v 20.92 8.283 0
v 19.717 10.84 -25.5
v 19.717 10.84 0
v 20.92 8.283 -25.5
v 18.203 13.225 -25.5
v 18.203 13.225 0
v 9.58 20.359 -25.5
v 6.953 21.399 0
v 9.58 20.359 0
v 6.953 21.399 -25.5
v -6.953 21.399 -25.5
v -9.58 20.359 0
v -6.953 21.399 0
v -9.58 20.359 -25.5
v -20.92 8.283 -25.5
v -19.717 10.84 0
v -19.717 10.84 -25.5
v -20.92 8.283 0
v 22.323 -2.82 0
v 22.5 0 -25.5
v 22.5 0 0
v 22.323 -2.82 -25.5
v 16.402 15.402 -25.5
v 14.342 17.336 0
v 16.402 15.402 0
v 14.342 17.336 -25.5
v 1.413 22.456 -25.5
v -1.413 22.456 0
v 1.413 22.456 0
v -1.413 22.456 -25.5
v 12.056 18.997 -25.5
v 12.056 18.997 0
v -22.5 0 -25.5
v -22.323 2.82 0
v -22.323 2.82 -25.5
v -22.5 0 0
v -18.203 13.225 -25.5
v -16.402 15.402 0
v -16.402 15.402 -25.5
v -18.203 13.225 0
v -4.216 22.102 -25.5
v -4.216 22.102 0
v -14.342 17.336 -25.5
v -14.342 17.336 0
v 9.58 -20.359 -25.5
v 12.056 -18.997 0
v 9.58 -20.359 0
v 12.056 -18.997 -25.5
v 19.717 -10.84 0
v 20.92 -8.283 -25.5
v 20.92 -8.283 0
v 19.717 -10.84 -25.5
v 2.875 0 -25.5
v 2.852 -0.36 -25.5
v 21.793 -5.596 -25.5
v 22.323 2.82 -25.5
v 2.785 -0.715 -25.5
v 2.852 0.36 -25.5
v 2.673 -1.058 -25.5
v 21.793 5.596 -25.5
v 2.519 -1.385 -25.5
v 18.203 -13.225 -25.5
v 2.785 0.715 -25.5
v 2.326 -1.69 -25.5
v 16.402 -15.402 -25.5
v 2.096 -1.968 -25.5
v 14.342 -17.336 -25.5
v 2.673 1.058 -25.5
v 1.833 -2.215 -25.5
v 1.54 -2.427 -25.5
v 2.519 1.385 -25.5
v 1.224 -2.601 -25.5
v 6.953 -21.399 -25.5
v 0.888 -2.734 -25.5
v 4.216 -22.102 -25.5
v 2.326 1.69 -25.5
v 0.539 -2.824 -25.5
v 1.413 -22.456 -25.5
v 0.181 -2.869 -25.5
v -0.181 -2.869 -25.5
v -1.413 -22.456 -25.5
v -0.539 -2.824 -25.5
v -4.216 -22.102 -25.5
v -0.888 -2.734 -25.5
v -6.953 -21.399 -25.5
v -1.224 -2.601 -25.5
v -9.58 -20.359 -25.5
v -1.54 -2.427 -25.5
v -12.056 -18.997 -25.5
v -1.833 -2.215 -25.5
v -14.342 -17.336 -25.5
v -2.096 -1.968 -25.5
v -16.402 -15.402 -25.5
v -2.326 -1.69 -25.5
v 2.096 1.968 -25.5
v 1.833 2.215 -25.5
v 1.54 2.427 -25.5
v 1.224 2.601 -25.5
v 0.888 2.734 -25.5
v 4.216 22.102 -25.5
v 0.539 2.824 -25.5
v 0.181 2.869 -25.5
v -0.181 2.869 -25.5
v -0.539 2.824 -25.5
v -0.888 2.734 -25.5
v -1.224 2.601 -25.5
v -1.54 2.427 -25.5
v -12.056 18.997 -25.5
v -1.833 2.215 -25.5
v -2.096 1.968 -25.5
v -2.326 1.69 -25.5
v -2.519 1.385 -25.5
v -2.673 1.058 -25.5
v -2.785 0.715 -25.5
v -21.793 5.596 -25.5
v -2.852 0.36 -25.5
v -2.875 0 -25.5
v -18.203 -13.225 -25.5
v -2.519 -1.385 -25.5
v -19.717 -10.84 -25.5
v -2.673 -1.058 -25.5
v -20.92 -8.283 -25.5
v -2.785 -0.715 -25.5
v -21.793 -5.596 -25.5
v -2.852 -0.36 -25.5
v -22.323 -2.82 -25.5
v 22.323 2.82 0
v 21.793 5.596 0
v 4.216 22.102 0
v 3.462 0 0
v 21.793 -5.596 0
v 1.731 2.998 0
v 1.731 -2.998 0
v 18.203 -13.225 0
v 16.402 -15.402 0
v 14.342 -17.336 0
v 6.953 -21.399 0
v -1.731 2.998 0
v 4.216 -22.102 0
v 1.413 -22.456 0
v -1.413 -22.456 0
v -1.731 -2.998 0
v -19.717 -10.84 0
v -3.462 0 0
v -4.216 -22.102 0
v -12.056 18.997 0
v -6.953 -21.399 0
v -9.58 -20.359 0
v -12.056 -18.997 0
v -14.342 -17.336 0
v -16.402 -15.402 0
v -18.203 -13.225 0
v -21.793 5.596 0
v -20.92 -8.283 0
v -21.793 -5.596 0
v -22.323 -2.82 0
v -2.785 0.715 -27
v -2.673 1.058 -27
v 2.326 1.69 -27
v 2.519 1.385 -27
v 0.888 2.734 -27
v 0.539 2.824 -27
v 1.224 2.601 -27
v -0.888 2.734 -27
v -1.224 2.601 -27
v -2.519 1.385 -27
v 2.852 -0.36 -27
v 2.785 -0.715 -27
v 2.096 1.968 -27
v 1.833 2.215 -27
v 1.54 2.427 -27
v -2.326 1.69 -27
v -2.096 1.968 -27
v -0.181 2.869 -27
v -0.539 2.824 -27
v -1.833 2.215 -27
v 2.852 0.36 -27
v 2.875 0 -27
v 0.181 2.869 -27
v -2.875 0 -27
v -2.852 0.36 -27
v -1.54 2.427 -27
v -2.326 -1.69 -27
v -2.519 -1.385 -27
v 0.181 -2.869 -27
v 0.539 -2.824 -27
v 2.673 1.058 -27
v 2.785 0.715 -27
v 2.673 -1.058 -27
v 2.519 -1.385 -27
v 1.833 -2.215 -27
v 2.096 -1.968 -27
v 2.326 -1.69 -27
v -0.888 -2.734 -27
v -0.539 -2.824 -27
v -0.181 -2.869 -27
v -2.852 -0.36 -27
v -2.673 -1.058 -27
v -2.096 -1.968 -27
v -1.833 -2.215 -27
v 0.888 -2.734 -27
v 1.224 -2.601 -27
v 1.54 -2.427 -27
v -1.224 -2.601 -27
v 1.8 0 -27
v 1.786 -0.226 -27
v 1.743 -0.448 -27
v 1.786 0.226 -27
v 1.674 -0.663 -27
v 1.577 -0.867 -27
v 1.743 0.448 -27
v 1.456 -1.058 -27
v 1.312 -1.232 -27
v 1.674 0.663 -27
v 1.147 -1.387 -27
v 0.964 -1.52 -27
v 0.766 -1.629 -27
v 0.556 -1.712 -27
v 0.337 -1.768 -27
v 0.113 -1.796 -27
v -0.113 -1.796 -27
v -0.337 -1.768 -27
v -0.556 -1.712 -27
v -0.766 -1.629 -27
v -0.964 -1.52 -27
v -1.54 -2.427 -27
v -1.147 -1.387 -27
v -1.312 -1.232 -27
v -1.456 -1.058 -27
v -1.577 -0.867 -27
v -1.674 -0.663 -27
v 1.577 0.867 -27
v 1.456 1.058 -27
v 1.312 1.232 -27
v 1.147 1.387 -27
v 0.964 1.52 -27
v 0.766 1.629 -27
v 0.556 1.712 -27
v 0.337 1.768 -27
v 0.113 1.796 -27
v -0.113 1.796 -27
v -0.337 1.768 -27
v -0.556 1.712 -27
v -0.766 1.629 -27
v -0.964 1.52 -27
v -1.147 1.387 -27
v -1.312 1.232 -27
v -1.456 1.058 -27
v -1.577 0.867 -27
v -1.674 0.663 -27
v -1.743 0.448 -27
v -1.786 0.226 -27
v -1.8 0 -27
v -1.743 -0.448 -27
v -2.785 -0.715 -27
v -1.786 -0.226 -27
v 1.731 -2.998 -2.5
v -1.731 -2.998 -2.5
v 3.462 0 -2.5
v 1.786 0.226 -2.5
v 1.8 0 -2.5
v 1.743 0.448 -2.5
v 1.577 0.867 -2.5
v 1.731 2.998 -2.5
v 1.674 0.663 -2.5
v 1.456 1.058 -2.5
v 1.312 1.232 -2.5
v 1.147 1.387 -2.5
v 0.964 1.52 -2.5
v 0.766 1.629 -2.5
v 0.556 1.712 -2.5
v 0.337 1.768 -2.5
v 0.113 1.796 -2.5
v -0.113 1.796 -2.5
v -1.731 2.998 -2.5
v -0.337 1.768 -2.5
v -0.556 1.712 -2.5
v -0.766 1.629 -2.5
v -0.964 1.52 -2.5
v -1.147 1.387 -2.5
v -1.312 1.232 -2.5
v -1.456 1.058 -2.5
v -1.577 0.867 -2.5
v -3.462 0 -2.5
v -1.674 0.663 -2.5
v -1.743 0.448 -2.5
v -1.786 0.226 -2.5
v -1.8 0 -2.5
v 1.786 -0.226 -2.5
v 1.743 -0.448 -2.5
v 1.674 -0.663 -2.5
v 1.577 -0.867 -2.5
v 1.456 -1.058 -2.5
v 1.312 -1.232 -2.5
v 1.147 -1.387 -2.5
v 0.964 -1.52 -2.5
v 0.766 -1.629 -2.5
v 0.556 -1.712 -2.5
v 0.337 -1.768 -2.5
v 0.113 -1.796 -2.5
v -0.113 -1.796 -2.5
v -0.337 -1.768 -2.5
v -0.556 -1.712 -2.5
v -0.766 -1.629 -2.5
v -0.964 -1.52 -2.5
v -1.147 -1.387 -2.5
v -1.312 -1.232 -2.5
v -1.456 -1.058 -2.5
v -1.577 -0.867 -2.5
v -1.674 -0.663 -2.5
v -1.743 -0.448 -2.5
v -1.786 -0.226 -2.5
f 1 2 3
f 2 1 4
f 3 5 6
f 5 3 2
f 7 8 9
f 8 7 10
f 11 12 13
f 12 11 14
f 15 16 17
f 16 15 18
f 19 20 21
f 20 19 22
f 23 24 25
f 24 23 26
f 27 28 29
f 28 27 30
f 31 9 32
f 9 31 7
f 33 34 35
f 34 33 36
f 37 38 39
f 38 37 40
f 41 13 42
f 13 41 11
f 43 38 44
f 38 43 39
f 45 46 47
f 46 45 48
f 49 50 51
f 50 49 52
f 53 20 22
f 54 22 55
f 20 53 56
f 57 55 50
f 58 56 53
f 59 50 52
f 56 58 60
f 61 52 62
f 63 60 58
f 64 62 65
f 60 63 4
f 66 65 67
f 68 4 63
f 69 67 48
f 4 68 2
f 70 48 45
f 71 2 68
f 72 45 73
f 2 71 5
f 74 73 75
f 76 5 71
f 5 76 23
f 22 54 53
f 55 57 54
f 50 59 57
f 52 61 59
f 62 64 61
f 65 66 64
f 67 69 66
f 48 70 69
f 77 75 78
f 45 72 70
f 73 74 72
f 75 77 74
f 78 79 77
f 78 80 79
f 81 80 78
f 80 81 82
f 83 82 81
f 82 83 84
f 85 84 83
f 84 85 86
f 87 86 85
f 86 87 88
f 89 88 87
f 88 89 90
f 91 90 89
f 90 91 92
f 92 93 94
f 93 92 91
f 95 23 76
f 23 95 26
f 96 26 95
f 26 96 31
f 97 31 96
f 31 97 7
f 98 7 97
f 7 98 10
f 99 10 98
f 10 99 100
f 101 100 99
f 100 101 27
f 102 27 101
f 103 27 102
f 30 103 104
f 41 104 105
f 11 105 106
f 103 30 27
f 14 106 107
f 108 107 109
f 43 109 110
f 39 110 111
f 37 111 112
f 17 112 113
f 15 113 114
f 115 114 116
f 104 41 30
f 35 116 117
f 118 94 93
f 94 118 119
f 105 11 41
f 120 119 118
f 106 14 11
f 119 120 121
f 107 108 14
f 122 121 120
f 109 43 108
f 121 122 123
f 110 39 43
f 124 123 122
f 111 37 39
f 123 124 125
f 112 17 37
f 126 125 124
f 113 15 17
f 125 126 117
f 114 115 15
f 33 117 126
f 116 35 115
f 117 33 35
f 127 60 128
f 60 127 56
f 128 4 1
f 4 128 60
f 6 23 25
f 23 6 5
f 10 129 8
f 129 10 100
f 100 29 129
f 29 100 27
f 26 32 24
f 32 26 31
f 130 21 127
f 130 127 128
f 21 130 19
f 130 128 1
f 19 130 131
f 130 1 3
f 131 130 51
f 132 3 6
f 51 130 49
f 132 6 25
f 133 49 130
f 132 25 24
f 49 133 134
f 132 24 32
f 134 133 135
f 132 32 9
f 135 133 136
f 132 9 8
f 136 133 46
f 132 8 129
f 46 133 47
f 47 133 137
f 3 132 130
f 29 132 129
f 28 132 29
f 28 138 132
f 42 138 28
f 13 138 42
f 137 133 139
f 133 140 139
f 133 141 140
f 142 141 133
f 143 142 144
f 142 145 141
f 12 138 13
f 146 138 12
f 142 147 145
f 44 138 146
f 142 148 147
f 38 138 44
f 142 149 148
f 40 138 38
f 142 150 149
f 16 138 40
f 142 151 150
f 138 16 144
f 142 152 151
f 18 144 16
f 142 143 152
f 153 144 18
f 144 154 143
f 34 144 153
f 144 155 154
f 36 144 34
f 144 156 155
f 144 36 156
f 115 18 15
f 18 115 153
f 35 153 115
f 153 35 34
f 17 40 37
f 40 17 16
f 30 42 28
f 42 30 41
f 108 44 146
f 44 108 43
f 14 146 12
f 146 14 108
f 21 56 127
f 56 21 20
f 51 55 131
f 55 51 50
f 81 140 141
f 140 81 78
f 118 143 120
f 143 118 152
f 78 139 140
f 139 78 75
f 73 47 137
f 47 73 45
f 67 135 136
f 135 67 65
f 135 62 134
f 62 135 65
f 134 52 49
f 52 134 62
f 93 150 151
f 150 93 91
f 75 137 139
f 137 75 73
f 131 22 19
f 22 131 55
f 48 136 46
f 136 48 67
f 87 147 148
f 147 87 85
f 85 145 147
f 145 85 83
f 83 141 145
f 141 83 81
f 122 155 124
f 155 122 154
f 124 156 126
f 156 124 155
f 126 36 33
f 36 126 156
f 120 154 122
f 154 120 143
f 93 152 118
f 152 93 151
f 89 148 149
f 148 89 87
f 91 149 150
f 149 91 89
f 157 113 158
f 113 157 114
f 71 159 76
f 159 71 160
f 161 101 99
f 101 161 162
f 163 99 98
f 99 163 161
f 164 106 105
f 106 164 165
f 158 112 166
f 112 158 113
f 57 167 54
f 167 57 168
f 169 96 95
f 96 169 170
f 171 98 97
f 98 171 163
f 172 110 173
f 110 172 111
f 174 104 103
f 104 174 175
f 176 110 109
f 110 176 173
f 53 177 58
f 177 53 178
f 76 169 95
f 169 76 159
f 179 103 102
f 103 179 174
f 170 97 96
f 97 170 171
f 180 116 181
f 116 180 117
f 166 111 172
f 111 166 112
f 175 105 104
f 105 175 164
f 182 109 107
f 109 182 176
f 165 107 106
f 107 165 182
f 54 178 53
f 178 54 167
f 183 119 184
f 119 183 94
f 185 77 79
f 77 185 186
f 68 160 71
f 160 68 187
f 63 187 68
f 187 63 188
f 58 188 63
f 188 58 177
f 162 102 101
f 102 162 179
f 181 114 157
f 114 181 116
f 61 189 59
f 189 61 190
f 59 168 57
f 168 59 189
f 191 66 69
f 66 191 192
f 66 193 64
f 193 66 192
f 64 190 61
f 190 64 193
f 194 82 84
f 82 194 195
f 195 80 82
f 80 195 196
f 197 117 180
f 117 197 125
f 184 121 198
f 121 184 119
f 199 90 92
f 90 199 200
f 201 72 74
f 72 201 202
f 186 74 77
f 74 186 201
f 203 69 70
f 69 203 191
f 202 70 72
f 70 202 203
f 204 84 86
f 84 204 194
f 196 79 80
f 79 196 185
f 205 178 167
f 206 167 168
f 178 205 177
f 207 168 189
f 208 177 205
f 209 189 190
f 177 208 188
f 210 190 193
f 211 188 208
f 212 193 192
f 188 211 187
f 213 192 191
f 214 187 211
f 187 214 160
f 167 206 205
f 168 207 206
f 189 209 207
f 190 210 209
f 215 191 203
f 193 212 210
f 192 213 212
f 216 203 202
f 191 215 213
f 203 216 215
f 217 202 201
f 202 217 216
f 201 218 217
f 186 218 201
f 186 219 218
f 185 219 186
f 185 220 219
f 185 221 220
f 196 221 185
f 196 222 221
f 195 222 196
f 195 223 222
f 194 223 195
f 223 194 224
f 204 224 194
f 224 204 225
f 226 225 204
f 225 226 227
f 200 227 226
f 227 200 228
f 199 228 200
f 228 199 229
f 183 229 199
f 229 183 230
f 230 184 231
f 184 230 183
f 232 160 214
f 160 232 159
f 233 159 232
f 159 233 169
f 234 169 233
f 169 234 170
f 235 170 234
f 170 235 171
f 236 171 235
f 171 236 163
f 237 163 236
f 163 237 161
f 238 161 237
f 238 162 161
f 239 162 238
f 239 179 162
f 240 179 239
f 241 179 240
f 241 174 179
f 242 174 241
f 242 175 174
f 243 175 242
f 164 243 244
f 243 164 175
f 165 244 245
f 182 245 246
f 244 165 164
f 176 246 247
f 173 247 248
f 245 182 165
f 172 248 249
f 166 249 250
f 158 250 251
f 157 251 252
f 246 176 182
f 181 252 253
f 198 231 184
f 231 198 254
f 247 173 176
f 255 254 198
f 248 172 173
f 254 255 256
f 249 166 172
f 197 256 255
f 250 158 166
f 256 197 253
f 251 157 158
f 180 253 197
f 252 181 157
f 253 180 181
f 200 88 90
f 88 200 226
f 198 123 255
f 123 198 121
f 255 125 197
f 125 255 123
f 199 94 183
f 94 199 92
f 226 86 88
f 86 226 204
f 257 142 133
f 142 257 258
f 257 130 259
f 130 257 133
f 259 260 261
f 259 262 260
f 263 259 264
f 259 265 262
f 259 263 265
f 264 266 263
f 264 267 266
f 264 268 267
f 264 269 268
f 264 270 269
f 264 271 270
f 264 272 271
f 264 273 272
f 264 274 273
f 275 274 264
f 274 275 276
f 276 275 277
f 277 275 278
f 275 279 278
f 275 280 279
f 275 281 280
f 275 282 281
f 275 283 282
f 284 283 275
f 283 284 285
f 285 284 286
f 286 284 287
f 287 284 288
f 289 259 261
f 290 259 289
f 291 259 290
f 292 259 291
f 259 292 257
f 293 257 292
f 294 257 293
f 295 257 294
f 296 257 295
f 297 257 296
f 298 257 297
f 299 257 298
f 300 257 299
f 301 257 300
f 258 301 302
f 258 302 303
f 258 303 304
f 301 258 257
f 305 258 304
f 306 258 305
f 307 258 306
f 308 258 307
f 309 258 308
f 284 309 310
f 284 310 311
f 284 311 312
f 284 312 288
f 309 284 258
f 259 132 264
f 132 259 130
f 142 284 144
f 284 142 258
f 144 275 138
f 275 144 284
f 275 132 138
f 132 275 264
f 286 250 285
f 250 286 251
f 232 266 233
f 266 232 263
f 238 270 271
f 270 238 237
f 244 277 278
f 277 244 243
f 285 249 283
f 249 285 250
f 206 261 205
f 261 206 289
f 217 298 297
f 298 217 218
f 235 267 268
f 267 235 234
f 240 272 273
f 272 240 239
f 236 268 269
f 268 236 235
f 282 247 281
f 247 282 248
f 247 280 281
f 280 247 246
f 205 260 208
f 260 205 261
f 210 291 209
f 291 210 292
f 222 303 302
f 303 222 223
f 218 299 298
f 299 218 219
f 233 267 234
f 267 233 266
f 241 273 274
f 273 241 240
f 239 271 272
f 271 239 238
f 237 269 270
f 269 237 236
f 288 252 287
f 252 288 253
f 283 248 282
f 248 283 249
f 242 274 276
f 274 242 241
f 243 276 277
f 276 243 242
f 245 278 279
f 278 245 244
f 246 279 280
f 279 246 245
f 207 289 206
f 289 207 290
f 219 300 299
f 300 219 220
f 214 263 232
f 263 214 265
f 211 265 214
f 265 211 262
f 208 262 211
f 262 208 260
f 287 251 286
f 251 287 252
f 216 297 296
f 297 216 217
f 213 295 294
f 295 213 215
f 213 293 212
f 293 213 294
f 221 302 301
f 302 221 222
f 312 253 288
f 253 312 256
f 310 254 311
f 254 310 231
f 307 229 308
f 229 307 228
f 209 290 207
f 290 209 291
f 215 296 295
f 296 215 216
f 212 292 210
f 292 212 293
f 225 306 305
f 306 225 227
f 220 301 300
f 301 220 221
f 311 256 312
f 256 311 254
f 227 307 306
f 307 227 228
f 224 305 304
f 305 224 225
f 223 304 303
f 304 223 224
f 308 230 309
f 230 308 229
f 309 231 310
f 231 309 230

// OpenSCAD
$fn = 50;

difference() {
	union() {
		translate(v = [0, 0, -25.5]) {
			cylinder(h = 25.5, r = 22.5);
		}
		#translate(v = [0, 0, -27.0]) {
			cylinder(h = 27, r = 2.875);
		}
	}
	union() {
		translate(v = [0, 0, 0]) {
			rotate(a = [0, 0, 0]) {
				difference() {
					union() {
						translate(v = [0, 0, -2.5]) {
							linear_extrude(height = 2.5) {
								polygon(points = [[3.4619999999999997, 0.0], [1.7310000000000003, 2.9981799479017264], [-1.7309999999999992, 2.9981799479017264], [-3.4619999999999997, 4.2397272186481365e-16], [-1.7310000000000014, -2.998179947901726], [1.7309999999999977, -2.9981799479017277]]);
							}
						}
					}
					union();
				}
			}
		}
		#translate(v = [0, 0, -100.0]) {
			cylinder(h = 200, r = 1.8);
		}
	}
}
